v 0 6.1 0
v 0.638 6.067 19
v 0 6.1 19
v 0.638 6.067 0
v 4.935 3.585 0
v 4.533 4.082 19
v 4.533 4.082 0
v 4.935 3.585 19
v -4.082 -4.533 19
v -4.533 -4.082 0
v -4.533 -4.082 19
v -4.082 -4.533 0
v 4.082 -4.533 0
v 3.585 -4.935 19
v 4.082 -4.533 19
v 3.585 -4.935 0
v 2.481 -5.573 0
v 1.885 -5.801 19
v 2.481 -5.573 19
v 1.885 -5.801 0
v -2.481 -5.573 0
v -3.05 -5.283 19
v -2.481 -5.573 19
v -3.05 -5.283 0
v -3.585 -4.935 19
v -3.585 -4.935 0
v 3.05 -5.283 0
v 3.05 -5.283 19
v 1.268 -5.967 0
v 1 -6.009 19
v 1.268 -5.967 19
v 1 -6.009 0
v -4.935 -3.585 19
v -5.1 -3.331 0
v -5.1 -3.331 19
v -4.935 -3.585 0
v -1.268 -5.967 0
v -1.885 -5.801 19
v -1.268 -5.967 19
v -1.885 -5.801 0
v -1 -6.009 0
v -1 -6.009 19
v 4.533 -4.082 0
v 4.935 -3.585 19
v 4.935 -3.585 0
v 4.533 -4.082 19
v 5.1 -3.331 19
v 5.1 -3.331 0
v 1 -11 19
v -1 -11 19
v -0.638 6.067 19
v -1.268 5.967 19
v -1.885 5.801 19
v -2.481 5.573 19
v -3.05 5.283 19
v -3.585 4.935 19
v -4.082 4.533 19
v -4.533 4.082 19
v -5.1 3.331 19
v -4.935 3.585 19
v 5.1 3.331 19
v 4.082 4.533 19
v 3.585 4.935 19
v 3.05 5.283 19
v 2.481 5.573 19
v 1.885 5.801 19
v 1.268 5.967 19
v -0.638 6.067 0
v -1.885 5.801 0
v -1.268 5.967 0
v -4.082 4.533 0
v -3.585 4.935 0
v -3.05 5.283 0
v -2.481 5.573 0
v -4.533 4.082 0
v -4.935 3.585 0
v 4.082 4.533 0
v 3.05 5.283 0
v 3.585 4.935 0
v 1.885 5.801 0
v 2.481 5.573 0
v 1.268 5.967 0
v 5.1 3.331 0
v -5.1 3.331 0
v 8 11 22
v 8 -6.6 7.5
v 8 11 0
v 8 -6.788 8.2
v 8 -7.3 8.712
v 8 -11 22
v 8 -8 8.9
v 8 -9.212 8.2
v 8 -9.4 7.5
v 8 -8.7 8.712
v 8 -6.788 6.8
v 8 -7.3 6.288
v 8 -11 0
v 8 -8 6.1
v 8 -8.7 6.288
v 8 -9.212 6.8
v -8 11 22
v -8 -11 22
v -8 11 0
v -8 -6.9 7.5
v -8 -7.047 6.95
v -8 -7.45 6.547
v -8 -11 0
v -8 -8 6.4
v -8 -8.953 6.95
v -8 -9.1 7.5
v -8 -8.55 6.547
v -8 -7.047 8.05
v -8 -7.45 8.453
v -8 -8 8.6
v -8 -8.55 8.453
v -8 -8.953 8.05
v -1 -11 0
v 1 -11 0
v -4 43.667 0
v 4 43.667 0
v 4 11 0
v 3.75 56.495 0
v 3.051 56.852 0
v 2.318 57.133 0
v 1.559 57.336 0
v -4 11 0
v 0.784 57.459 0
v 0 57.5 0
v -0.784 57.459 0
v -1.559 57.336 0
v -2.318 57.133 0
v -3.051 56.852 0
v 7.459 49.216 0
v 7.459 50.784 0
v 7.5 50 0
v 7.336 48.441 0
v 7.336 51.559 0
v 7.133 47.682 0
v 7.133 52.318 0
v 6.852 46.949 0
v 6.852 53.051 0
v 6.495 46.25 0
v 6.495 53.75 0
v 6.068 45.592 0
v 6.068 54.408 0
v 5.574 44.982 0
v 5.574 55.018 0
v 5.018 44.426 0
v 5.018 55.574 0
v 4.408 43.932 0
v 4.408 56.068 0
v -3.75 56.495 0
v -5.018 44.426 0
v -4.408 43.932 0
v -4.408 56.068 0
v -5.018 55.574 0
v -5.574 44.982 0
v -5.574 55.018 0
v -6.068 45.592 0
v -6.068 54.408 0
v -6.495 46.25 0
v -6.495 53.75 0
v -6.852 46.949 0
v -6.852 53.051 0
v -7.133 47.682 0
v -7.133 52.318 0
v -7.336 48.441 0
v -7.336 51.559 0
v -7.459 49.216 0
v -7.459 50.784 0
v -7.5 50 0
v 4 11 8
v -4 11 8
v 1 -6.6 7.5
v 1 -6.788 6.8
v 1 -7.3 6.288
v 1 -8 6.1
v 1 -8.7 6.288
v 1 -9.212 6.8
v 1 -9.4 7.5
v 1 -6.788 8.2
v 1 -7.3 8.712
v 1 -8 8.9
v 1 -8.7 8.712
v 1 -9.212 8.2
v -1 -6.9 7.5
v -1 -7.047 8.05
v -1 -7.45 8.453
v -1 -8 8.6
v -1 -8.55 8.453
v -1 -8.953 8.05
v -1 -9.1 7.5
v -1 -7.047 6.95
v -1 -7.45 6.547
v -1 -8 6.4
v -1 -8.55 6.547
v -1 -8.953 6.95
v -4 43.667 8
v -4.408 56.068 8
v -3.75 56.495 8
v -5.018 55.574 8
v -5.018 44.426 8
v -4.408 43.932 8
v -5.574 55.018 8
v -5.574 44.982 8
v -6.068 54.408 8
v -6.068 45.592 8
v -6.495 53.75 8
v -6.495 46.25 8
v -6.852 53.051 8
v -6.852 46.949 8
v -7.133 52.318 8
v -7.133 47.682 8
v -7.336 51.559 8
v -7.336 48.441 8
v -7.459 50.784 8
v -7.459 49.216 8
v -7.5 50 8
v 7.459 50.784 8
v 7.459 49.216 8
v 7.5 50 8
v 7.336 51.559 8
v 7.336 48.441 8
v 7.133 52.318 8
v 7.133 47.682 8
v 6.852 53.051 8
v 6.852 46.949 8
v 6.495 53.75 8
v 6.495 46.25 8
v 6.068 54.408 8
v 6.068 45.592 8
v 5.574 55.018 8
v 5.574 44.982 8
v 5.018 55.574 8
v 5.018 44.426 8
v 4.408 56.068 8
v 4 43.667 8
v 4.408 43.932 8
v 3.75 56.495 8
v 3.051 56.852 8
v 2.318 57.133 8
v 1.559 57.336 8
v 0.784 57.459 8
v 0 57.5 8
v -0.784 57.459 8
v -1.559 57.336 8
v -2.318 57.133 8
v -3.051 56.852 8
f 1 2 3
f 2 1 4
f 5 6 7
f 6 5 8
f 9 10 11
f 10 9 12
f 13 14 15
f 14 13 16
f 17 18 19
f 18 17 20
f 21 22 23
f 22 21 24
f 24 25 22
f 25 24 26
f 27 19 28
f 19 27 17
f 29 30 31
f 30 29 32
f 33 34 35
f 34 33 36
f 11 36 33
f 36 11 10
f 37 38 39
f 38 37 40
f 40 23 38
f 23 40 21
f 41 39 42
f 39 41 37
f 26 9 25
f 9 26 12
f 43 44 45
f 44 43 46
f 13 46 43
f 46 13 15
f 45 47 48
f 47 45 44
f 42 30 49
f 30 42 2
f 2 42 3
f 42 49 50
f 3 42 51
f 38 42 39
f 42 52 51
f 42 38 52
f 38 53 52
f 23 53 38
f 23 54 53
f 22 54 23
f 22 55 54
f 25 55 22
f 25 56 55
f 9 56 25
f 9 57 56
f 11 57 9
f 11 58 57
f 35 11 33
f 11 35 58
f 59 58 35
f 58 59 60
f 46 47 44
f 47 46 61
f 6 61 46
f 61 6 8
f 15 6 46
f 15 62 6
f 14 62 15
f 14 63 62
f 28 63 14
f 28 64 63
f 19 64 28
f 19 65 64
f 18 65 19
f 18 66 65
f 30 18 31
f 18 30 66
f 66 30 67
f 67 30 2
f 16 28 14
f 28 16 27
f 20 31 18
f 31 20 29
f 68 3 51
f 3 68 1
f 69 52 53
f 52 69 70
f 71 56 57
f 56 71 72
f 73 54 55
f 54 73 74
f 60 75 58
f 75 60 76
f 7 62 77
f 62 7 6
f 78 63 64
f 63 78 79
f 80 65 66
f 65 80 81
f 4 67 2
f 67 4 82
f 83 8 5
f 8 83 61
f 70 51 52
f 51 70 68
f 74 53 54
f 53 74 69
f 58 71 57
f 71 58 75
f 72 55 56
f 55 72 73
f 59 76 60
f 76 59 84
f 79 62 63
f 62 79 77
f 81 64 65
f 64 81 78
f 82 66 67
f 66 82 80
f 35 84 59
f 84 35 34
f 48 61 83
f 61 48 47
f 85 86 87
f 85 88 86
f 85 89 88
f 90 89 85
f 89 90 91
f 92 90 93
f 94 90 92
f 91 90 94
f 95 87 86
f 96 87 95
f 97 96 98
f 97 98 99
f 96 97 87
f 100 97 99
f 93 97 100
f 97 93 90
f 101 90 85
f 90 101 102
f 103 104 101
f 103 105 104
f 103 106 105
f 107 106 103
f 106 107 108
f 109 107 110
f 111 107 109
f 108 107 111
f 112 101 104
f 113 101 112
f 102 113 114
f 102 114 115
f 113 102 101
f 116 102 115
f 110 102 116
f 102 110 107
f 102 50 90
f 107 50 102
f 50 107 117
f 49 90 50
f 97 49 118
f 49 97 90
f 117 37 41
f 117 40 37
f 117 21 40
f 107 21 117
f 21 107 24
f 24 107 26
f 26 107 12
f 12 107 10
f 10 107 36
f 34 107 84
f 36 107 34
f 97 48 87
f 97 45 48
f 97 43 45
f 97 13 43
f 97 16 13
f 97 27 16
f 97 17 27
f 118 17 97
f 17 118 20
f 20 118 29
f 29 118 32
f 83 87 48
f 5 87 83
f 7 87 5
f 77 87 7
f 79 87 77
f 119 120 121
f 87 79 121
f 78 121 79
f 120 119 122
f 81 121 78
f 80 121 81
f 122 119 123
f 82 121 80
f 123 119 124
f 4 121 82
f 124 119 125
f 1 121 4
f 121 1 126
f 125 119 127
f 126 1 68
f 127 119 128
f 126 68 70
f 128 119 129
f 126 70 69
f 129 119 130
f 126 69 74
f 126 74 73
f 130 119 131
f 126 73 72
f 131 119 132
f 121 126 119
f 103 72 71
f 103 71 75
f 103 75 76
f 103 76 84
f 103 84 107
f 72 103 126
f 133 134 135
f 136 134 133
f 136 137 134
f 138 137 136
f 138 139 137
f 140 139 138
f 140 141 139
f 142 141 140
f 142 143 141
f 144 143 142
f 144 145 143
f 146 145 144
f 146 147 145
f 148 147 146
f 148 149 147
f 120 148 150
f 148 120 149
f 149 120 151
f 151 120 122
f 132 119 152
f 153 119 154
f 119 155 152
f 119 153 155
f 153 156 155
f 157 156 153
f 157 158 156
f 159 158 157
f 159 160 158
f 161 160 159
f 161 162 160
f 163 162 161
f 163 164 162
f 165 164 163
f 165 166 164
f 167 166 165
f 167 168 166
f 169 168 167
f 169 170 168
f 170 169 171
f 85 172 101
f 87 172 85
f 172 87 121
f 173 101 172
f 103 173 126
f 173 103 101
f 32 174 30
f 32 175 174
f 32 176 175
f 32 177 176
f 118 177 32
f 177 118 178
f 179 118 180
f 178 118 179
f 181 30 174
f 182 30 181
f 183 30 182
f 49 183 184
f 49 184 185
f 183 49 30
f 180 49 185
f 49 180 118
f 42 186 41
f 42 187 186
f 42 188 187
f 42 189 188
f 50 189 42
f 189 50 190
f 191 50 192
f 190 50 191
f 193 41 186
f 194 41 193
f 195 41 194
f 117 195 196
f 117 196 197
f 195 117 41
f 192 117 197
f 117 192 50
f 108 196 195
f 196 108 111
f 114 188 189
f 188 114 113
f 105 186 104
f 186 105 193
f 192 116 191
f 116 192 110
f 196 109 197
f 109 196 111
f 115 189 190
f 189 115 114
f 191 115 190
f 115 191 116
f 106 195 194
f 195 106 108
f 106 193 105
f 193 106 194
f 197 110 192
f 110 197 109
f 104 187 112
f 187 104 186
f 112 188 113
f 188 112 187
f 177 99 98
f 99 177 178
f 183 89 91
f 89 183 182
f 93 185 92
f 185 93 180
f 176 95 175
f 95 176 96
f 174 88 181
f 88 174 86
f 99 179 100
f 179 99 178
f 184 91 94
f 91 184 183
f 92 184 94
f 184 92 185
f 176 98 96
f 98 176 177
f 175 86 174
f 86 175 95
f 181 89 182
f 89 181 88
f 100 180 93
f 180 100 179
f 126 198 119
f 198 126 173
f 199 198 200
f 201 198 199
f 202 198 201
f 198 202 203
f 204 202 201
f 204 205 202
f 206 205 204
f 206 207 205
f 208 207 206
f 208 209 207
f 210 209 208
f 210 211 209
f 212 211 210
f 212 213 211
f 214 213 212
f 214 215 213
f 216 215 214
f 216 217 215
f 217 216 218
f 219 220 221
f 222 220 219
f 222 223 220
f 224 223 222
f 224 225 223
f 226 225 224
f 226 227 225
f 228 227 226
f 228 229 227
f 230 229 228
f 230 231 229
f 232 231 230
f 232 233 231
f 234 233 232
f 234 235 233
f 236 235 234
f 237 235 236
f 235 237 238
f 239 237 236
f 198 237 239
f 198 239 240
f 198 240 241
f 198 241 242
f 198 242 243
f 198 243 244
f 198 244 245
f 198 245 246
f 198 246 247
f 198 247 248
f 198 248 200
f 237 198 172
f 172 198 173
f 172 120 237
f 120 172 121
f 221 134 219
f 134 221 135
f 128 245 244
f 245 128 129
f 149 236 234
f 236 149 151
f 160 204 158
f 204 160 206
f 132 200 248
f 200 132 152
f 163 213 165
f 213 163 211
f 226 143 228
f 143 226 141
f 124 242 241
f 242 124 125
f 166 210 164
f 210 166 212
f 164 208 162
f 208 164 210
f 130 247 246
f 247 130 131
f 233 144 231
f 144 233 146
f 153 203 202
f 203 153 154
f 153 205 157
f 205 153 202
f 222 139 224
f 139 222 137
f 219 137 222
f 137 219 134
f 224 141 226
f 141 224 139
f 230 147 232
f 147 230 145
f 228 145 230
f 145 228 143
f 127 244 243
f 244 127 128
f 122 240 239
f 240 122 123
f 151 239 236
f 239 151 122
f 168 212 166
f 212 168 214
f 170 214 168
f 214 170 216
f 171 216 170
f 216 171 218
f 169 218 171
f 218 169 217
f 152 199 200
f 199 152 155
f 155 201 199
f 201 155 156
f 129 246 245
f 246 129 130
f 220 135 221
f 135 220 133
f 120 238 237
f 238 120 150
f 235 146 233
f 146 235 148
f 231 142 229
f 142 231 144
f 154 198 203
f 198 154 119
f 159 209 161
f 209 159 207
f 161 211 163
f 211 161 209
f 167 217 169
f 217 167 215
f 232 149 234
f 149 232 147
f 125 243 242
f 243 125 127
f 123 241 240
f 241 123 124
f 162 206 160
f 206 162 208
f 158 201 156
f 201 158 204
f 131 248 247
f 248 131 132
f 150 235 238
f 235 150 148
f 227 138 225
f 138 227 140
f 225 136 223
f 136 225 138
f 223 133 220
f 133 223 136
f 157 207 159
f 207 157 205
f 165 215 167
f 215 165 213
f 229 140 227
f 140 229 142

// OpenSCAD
rotate([0,0,180])wheel_bracket();

translate([-4,10,0])cube([8,35,8]);
translate([0,50,0])cylinder(d=15,h=8,$fn=60);

module wheel_bracket(){
    difference(){
translate([-8,-11,0])cube([16,22,22]);
difference(){
    translate([0,0,-1])cylinder(d=12.2,h=20,$fn=60);
    translate([6.1,0,-1])cube([2,20,50],center=true);
    translate([-6.1,0,-1])cube([2,20,50],center=true);
}
translate([-1,0,-1])cube([2,22,20]);
translate([-9,8,7.5])rotate([0,90,0])
cylinder(d=2.2,h=21,$fn=12);
translate([-9,8,7.5])rotate([0,90,0])
cylinder(d=2.8,h=10,$fn=12);
}
}
